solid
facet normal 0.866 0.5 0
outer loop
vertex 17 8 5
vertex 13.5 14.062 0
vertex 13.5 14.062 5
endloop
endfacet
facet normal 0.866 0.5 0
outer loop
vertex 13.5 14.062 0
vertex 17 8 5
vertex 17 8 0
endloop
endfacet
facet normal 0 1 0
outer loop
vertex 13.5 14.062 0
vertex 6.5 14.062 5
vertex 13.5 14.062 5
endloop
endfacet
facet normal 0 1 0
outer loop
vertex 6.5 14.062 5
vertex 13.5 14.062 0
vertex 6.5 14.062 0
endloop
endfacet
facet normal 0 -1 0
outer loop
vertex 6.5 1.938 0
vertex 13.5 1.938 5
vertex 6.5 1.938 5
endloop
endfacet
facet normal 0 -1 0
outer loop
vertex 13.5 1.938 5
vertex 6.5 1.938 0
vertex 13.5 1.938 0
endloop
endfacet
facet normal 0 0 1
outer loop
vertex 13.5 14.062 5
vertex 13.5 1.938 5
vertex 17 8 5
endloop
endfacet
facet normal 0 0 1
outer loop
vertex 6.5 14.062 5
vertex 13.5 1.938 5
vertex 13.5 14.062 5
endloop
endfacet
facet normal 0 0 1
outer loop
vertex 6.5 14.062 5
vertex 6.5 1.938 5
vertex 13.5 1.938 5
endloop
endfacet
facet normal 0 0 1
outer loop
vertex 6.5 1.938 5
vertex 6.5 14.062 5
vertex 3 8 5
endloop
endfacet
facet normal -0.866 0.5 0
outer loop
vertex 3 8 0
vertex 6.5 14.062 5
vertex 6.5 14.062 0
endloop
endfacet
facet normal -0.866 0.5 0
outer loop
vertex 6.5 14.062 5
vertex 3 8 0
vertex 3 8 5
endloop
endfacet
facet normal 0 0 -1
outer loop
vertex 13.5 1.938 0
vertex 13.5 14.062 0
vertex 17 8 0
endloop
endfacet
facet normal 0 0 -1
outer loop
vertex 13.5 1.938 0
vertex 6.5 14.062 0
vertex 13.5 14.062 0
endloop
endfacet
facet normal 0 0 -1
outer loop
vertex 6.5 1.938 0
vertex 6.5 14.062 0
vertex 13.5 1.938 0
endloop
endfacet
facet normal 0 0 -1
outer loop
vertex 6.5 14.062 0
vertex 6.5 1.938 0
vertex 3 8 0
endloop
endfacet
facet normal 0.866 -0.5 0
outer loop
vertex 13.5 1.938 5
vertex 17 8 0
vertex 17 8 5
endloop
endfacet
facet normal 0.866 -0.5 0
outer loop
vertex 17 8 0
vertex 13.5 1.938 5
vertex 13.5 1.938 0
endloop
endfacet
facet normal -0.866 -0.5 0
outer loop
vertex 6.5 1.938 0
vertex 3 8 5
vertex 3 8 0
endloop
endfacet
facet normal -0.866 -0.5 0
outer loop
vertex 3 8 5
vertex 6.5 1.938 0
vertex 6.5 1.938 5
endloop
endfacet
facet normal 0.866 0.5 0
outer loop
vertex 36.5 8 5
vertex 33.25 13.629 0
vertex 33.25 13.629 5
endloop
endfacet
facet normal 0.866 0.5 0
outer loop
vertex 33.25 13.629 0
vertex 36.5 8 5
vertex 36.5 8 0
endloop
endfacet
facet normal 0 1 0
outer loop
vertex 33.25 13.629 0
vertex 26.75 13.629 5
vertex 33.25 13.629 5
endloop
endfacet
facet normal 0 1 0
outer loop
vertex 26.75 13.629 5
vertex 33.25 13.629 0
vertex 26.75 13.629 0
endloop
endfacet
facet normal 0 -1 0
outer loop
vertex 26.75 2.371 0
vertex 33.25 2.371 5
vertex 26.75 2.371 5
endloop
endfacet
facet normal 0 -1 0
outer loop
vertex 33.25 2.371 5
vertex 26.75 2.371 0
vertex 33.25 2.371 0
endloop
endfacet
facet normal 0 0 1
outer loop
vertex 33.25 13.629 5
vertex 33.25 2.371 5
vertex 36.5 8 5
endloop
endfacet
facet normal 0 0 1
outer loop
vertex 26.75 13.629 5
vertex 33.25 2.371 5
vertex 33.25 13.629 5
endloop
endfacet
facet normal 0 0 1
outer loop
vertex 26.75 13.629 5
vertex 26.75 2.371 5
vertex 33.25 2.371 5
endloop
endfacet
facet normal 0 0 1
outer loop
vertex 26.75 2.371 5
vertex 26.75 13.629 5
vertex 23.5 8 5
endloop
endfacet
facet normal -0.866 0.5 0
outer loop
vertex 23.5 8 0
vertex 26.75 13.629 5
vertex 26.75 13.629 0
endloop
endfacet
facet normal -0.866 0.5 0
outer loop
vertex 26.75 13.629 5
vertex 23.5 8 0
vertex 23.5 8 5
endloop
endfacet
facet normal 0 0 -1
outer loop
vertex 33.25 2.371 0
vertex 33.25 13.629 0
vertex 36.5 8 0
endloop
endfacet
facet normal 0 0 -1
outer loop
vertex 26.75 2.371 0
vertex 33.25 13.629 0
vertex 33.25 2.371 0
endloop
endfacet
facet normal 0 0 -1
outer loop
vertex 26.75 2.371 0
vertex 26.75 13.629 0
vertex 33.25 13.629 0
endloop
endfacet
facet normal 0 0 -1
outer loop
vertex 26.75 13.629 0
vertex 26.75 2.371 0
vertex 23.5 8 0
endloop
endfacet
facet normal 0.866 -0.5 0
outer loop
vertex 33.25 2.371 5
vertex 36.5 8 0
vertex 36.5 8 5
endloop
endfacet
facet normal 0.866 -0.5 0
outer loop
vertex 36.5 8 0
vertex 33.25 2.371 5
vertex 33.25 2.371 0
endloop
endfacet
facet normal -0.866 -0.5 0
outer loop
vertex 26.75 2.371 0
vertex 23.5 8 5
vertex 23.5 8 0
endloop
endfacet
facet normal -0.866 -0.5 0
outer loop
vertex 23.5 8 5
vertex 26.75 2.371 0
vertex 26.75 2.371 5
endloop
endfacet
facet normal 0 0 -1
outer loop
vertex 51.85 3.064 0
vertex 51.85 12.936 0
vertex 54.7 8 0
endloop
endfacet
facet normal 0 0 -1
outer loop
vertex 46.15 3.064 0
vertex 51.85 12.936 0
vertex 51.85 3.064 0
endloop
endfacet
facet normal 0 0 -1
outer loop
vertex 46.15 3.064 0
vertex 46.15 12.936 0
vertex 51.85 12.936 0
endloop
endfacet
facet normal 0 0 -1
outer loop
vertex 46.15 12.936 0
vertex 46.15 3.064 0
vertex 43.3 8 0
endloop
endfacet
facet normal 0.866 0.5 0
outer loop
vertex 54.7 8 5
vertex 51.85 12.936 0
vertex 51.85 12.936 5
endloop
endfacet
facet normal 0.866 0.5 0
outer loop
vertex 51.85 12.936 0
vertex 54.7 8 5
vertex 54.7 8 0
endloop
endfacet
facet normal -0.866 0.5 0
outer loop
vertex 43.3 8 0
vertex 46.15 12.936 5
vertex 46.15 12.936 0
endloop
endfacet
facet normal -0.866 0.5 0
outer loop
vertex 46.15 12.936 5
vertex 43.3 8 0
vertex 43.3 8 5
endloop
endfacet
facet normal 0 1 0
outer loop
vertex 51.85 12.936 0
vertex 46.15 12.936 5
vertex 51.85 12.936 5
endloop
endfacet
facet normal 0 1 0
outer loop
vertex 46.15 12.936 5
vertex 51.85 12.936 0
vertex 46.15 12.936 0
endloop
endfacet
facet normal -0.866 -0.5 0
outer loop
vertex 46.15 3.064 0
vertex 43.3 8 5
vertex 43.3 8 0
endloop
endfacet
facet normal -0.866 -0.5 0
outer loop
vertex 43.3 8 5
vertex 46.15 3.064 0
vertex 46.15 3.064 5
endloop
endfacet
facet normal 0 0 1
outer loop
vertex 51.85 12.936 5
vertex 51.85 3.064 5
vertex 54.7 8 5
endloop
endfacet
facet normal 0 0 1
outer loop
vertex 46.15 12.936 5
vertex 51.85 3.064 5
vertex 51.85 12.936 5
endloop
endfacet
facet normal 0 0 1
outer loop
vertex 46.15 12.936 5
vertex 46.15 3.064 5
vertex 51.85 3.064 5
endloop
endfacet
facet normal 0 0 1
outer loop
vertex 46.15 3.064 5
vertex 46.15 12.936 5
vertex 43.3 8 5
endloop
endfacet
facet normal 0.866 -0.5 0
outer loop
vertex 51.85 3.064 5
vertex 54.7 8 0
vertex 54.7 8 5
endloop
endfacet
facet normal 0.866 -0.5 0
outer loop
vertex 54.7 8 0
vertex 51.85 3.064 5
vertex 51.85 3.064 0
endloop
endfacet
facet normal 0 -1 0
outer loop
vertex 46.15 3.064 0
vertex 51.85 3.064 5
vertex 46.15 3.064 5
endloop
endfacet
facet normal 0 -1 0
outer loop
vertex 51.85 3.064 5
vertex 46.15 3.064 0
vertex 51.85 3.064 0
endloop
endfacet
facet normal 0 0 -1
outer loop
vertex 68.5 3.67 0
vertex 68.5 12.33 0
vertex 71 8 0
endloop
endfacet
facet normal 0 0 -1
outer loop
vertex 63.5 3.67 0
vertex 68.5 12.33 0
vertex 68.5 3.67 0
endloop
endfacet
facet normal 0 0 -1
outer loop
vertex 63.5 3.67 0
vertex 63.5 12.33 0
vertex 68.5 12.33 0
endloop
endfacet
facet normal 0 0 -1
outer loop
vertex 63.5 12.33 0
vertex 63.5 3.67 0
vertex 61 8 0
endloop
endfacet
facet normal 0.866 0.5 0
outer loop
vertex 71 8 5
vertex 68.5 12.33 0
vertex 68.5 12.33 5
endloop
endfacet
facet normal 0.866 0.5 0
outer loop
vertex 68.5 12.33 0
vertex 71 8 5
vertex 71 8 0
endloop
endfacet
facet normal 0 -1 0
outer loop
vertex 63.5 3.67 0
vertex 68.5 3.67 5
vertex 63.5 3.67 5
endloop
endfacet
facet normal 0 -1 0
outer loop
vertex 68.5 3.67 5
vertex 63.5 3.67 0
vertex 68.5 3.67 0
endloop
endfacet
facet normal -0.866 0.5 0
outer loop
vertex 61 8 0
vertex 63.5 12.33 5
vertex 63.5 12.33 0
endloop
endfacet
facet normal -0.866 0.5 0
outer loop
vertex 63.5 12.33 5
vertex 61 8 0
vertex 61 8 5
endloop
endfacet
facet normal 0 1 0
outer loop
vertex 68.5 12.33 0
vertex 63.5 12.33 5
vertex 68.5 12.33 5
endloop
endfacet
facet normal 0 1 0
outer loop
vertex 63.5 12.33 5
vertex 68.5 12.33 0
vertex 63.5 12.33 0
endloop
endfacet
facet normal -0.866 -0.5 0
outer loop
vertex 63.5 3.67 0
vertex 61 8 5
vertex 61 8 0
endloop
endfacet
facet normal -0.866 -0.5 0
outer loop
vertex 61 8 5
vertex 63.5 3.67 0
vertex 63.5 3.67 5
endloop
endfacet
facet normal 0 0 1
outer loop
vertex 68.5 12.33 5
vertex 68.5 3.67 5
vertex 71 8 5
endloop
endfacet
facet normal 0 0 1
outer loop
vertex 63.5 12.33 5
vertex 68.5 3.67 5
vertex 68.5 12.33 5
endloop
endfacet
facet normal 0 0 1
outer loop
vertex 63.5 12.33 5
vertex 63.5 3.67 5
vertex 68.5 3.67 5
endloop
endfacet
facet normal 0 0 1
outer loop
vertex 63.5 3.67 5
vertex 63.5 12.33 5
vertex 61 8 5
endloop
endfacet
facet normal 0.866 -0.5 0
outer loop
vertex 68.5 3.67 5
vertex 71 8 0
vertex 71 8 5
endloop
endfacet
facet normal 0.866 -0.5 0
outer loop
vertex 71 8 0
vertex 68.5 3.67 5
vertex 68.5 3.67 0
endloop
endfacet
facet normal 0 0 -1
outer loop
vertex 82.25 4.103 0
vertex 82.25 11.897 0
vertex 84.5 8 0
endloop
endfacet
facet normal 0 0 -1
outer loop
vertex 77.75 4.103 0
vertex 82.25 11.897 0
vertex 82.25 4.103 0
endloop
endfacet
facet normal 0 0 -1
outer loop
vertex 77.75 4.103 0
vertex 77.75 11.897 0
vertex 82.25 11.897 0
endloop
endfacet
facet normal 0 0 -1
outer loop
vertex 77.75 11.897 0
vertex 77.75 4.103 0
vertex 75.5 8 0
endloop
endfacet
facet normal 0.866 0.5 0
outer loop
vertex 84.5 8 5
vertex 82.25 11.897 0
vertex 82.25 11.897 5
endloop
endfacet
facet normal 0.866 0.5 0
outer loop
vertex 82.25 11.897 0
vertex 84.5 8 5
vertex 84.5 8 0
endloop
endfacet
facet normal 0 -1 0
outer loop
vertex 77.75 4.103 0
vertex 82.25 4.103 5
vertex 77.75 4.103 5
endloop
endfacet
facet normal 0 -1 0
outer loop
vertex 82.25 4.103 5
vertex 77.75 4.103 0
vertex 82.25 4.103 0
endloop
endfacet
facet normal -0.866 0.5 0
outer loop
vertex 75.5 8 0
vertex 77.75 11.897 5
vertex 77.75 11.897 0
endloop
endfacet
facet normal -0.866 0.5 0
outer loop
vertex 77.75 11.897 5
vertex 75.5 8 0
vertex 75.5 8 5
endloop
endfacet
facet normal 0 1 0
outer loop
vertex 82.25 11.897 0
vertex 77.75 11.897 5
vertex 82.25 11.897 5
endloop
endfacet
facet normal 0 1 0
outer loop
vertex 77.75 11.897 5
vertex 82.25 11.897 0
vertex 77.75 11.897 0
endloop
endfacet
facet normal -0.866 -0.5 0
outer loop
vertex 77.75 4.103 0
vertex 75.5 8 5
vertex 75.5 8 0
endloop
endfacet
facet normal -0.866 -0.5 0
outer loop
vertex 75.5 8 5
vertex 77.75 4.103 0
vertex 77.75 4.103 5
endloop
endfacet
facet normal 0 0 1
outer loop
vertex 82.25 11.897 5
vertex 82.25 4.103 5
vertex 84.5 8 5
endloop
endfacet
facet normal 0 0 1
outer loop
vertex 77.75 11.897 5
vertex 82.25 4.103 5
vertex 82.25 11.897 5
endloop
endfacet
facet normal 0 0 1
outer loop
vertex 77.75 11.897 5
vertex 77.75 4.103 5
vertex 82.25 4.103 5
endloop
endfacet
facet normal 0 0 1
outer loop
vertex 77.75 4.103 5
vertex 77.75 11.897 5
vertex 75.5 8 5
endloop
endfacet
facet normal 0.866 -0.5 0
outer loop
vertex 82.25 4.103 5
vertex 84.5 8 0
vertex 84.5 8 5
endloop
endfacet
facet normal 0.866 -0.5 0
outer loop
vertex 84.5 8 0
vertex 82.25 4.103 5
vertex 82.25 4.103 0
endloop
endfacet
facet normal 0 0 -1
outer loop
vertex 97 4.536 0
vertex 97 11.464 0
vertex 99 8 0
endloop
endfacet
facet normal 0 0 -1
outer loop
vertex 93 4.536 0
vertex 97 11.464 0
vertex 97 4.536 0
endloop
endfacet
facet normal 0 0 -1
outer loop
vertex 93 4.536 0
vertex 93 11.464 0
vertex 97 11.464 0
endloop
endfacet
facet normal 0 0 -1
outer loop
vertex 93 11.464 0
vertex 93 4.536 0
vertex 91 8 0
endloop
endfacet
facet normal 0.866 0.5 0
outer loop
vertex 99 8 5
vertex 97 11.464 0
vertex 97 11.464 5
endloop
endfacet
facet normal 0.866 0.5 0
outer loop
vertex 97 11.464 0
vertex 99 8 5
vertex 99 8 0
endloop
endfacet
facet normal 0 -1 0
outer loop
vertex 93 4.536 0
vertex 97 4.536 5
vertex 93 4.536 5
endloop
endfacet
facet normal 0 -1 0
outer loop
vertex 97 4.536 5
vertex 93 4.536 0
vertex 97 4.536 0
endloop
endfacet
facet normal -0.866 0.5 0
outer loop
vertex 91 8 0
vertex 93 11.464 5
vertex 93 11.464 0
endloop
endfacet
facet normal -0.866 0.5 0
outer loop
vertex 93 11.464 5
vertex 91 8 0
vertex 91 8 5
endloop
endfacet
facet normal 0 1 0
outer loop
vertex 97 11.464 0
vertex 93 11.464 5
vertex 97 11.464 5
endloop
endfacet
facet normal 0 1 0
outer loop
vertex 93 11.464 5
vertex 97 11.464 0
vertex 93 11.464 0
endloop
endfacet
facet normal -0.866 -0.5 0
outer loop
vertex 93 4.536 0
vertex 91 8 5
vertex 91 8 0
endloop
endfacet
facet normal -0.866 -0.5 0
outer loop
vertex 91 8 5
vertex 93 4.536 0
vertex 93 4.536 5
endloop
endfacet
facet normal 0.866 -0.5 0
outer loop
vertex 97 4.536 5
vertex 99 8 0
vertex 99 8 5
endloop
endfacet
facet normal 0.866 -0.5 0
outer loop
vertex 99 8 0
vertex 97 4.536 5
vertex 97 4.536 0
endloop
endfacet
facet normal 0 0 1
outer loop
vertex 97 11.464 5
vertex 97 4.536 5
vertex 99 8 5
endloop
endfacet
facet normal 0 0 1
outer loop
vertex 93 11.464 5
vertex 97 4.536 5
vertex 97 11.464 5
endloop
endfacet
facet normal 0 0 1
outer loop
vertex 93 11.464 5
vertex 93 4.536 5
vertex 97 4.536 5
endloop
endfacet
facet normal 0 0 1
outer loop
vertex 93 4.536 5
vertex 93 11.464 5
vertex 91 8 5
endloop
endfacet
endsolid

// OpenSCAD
union() {
  union() {
    union() {
      union() {
        union() {
          difference() {
            translate([10.0000000000, 8.0000066667, 2.5000000000]) {
              scale([14.0000000000, 12.1240000000, 5.0000000000]) {
                rotate([0.0000000000, 0.0000000000, -0.0000000000]) {
                  scale([0.5, 0.577, 1]) cylinder($fn = 6, center = true);
                }
              }
            }
            /* EMPTY */ sphere(r = 0);
          }
          difference() {
            translate([30.0000000000, 8.0000100000, 2.5000000000]) {
              scale([13.0000000000, 11.2580000000, 5.0000000000]) {
                rotate([0.0000000000, 0.0000000000, -0.0000000000]) {
                  scale([0.5, 0.577, 1]) cylinder($fn = 6, center = true);
                }
              }
            }
            /* EMPTY */ sphere(r = 0);
          }
        }
        difference() {
          translate([49.0000500000, 7.9999874480, 2.5000000000]) {
            scale([11.4000000000, 9.8720000000, 5.0000000000]) {
              rotate([0.0000000000, 0.0000000000, -0.0000000000]) {
                scale([0.5, 0.577, 1]) cylinder($fn = 6, center = true);
              }
            }
          }
          /* EMPTY */ sphere(r = 0);
        }
      }
      difference() {
        translate([66.0000000000, 7.9999900000, 2.5000000000]) {
          scale([10.0000000000, 8.6600000000, 5.0000000000]) {
            rotate([0.0000000000, 0.0000000000, -0.0000000000]) {
              scale([0.5, 0.577, 1]) cylinder($fn = 6, center = true);
            }
          }
        }
        /* EMPTY */ sphere(r = 0);
      }
    }
    difference() {
      translate([80.0000100000, 7.9999993170, 2.5000000000]) {
        scale([9.0000000000, 7.7940000000, 5.0000000000]) {
          rotate([0.0000000000, 0.0000000000, -0.0000000000]) {
            scale([0.5, 0.577, 1]) cylinder($fn = 6, center = true);
          }
        }
      }
      /* EMPTY */ sphere(r = 0);
    }
  }
  difference() {
    translate([95.0000000000, 8.0000000000, 2.5000000000]) {
      scale([8.0000000000, 6.9280000000, 5.0000000000]) {
        rotate([0.0000000000, 0.0000000000, -0.0000000000]) {
          scale([0.5, 0.577, 1]) cylinder($fn = 6, center = true);
        }
      }
    }
    /* EMPTY */ sphere(r = 0);
  }
}
